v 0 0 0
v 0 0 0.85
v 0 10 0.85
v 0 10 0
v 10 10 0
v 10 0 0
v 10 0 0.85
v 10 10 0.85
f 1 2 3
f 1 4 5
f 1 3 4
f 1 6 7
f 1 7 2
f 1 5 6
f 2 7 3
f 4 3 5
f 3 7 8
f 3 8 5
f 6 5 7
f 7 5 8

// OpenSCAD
/* Warning, this is a very basic generator with a lot of approximation 
input data : [VQFN, LPC, 10x10x0.85mm, 100, , A, C04-25388A]
generated by com.zoubworld.electronics.cad.model3d.Basic
Date : Sun Feb 15 10:50:49 CET 2026
*/

//body
color("black")
translate([0,0,0])
cube([10.0,10.0,0.85], center=false);
